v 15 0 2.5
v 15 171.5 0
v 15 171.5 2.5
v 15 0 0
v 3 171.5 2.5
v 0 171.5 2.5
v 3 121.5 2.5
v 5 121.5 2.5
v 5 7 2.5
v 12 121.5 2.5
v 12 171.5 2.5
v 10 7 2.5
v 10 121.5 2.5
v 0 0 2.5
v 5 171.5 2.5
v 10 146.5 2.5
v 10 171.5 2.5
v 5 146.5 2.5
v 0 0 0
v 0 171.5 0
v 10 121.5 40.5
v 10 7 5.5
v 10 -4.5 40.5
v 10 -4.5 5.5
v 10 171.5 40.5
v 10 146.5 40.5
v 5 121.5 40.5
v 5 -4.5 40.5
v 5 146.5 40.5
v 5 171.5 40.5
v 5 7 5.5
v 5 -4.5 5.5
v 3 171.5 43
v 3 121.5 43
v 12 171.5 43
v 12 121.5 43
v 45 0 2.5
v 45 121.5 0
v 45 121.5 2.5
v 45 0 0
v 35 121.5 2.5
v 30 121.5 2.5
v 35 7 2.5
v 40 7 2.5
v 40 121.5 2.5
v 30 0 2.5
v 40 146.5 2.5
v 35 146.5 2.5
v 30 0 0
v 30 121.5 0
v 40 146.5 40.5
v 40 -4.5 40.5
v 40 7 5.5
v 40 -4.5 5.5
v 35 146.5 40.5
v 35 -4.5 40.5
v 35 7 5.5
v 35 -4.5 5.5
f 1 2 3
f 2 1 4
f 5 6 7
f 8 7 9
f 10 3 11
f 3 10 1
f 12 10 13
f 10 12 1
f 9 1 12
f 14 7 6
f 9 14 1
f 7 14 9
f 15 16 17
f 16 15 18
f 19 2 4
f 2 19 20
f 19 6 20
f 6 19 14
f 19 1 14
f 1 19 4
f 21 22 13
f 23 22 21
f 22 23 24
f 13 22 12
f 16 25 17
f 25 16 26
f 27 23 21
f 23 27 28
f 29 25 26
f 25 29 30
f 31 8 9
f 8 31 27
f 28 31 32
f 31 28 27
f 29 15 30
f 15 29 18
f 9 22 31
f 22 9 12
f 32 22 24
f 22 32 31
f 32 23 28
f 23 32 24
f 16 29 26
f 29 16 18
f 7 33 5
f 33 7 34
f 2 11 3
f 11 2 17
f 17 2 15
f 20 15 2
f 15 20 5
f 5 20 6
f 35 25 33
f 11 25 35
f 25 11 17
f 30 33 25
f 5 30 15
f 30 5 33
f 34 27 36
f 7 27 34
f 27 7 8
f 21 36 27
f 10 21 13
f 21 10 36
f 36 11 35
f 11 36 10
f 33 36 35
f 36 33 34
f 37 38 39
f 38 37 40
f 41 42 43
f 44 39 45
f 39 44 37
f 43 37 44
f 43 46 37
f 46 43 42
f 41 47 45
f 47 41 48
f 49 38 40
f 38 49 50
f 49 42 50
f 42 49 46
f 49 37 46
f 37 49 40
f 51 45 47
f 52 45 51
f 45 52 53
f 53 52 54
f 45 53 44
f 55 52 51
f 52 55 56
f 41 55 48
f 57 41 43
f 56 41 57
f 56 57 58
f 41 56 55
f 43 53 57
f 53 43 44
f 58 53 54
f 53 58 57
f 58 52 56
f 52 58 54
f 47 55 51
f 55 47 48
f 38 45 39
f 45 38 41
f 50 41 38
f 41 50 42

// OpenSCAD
depth = 293; // overall aquarium depth, this is the inner lip depth
width = 15; // width of the top bar
height = 2.5; // how thick the top bar is (small as possible) so the glass fits
notch = 7; // how deep the notch is cut outto accomodate the lip 
paddle = 45 - notch; // how deep the paddle goes into the tank. This seems to work for me. 
                     // you could make it even longer to keep plants in place for water  
                     // changes
paddle_thick = 5; // paddle thickness 
paddle_depth = depth;// same as the overall body
bumper_thickness = -4.5;// how big the bumper will be (OD-ID/2). This is the overhang. 
                        // It is the difference between the outer edge of the lip and the
                        // glass. Negative bumps it out 
ledge_height = 3; // the cutout notch height to accomodate the plastic aquarium rim


attach_depth=50;   // the attachment area between the two units 
attach_width = 2;  // the attachment thickness all around.
attach_height = paddle;// the overall height of the attachment,  
attach_bottom = 2.5;

union(){
    difference()
    {
        union(){
            cube(size = [width,depth,height]);  // the top bar where the glass sits
            translate([(width/2)-(paddle_thick/2),notch,height])
            cube(size = [paddle_thick,paddle_depth,paddle]); // the main paddle
            translate([(width/2)-(paddle_thick/2),bumper_thickness,height+ledge_height])
            cube(size = [paddle_thick,depth-(bumper_thickness*2),paddle-ledge_height]);
        }
        // this cuts the unit in half which was the original design
        translate([0,depth/2,0])
        translate([-1,0,-1])
        cube(size = [400,400,400]);
    }
    // the sides of the press-fit attachment area in the middle 
    translate([(width/2)-(paddle_thick/2)-attach_width,(depth/2)-(attach_depth/2),height])
    cube(size=[attach_width,attach_depth,attach_height]);
    translate([(width/2)+(paddle_thick/2),(depth/2)-(attach_depth/2),height])
    cube(size=[attach_width,attach_depth,attach_height]);
    // the top of the attachment area
    cube(size = [width,(depth/2)+(attach_depth/2),height]); 
    // bottom of the attachment area
    translate([(width/2)-(paddle_thick/2)-attach_width,(depth/2)-(attach_depth/2),height+paddle])
    cube(size=[paddle_thick+(attach_width*2),attach_depth,attach_bottom]);
}

// the second assembly that has the male part of the press fit
translate([30,0,0])
union(){
    difference(){
        difference()
        {
            union(){
                // these are the same as above
                cube(size = [width,depth,height]); // the top bar where the glass sits
                translate([(width/2)-(paddle_thick/2),notch,height])
                cube(size = [paddle_thick,paddle_depth,paddle]); // the main paddle
                translate([(width/2)-(paddle_thick/2),bumper_thickness,height+ledge_height])
                cube(size = [paddle_thick,depth-(bumper_thickness*2),paddle-ledge_height]);
                }
            // cut it in half
            translate([0,depth/2,0])
            translate([-1,0,-1])
            cube(size = [400,400,400]);
        }
        // Now lop off the top bar where the support is going to go
        // this is a bit of a cheat but comes from iteration. 
        translate([0,(depth/2)-(attach_depth/2),0])
        cube(size = [width,depth,height]); // the top bar
    }
}
